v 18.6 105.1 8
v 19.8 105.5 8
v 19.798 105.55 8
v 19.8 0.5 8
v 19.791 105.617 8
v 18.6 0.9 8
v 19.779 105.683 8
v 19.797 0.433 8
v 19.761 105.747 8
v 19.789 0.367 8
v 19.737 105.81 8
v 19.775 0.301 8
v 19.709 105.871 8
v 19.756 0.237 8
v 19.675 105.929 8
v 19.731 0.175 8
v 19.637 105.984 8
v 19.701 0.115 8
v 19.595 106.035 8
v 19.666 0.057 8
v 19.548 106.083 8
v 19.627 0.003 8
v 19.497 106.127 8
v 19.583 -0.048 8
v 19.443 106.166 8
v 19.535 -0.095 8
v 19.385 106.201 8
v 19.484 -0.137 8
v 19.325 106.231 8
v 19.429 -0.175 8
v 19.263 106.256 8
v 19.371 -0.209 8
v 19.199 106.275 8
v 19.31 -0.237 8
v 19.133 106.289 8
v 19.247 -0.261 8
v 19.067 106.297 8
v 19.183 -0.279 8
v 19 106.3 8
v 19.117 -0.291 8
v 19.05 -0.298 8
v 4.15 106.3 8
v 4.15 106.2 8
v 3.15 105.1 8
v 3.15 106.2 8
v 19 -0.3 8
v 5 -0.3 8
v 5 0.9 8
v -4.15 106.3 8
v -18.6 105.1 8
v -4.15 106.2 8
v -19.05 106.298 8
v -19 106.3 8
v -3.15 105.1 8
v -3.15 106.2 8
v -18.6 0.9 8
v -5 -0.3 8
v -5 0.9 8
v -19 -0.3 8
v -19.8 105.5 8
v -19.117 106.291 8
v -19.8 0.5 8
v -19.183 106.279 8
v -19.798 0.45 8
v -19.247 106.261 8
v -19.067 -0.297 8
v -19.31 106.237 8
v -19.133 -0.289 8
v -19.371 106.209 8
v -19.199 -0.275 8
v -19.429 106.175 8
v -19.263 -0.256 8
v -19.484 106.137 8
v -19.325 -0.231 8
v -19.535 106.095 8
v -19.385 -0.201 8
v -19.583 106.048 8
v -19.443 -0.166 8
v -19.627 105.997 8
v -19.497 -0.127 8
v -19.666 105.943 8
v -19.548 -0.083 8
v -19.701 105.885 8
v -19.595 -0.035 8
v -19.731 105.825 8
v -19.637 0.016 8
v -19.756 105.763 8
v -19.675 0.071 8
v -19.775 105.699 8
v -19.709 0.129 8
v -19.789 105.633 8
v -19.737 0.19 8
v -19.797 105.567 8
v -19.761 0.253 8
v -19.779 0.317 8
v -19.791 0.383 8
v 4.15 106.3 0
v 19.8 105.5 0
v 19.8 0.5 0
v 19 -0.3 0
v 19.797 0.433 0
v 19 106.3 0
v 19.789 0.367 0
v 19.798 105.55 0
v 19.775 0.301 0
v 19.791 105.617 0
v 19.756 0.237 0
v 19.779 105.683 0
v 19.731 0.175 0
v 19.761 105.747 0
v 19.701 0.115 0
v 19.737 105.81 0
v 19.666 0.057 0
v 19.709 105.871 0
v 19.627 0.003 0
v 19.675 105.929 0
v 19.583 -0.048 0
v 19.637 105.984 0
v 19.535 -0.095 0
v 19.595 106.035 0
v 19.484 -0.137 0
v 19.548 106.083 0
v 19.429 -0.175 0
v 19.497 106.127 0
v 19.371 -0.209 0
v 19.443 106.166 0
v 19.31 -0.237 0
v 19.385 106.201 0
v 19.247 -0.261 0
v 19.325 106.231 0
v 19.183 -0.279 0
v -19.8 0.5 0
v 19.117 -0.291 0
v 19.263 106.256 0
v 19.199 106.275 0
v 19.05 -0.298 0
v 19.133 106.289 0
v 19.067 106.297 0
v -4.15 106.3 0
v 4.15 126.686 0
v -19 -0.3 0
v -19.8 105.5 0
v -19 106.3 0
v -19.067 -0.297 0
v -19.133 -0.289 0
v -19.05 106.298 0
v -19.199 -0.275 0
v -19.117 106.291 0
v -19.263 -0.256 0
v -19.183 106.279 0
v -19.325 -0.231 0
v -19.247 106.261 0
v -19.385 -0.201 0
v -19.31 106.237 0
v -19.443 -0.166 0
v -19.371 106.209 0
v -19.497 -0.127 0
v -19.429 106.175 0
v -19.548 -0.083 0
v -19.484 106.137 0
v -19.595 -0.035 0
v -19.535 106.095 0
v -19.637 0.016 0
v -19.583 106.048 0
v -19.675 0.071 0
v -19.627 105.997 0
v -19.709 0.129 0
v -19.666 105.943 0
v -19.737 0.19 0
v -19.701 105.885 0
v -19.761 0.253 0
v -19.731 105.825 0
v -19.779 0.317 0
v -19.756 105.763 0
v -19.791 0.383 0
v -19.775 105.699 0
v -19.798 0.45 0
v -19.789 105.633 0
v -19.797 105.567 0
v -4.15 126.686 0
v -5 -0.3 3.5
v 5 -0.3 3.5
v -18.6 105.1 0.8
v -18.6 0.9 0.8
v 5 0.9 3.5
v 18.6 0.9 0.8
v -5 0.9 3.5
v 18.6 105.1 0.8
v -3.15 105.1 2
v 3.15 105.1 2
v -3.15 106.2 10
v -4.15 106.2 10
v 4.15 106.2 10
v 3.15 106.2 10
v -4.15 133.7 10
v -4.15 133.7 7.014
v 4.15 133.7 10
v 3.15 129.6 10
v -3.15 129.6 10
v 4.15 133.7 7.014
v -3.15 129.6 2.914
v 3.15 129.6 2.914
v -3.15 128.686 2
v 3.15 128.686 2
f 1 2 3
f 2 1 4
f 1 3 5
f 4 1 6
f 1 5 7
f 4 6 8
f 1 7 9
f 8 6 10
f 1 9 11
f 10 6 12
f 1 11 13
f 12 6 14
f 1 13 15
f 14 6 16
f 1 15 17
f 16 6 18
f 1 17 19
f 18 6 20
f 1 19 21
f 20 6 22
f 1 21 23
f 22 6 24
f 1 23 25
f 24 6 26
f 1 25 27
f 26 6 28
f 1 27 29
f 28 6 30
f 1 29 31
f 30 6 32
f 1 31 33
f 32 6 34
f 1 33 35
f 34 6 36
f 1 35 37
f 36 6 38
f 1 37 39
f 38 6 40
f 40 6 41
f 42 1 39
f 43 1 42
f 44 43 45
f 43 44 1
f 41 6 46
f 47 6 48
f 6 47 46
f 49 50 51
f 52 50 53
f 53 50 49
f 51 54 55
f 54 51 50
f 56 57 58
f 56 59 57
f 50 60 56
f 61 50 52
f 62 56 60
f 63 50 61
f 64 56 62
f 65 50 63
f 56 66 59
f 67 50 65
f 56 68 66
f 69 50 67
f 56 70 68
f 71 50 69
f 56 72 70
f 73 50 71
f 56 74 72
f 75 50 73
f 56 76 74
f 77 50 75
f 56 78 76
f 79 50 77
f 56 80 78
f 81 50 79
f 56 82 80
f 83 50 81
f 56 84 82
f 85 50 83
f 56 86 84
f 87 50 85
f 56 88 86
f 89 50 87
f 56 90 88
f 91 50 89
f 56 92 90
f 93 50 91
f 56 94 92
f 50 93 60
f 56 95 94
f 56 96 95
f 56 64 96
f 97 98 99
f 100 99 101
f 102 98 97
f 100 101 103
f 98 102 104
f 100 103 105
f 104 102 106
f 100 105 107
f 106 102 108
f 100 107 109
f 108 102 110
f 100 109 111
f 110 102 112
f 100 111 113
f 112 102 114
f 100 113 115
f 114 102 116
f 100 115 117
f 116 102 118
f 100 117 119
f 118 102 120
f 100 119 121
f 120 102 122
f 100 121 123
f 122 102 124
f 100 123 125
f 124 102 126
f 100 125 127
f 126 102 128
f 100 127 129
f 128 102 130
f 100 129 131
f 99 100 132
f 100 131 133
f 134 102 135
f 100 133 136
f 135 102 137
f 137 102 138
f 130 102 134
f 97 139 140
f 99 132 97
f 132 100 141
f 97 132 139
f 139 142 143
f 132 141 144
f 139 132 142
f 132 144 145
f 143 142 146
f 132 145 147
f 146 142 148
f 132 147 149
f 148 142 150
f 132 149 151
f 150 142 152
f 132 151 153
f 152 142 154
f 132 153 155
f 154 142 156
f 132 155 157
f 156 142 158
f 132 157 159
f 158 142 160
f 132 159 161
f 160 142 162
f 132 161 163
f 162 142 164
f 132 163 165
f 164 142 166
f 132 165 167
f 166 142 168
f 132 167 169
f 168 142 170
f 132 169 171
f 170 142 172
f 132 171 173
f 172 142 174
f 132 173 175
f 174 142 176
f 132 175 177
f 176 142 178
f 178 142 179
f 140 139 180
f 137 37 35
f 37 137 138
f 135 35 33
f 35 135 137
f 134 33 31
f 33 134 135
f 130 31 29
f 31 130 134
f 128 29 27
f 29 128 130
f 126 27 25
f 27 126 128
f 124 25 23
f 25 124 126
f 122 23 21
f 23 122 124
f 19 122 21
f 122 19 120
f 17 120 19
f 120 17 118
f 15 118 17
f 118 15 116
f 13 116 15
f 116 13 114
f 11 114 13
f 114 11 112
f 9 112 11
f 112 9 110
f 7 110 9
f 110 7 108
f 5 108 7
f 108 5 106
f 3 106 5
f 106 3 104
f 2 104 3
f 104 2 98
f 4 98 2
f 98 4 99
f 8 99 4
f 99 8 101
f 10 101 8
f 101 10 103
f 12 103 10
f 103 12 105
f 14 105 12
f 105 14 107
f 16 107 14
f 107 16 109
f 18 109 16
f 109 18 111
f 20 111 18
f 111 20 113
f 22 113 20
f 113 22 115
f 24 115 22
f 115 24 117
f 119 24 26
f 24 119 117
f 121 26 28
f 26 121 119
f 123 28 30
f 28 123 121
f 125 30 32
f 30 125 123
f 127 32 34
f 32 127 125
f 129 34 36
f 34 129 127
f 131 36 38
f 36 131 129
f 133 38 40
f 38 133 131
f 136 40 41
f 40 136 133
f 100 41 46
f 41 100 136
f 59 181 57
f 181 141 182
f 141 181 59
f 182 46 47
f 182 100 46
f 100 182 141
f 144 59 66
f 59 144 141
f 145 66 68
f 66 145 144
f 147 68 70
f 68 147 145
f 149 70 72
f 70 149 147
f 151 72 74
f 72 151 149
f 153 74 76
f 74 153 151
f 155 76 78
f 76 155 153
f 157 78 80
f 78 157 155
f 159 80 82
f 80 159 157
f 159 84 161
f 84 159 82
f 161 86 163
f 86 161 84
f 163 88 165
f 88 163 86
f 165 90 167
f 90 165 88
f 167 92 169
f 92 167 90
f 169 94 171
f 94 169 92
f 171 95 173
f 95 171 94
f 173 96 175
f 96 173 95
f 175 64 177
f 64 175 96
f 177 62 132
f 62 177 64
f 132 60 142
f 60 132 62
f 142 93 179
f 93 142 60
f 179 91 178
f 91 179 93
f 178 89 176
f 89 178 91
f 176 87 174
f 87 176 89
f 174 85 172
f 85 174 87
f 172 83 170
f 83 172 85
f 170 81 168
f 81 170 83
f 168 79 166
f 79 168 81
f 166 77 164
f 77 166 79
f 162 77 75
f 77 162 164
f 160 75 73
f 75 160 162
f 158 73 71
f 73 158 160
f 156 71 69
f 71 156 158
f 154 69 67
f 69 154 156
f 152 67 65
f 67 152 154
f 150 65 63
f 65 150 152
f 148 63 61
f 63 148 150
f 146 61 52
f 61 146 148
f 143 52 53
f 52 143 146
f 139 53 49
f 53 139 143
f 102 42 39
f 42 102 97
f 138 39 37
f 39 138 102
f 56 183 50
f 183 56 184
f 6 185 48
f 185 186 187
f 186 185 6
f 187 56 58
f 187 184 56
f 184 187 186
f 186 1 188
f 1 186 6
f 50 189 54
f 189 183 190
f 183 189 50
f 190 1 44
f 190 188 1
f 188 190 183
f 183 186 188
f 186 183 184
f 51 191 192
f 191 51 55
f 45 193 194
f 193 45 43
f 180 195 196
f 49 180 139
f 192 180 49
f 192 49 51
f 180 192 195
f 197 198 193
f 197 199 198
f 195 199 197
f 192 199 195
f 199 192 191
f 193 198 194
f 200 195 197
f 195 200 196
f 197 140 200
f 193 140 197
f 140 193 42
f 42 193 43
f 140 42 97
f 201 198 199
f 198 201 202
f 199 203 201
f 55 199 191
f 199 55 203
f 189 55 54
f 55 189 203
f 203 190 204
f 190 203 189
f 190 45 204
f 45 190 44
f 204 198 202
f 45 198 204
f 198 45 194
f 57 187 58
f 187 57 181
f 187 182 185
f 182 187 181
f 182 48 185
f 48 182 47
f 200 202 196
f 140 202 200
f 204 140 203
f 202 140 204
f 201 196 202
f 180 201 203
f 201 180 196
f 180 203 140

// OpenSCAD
$fn=75;

BOX_W = 38;
BOX_L = 105;
BOX_H = 8.0;

WALL = 0.8;

CORNER_RADIUS = 0.8;

MIC_OUTSIDE_W=8.3;
MIC_OUTSIDE_H=10.0;

MIC_INSIDE_W=6.3;
MIC_L=27.5;

MIC_OFFSET_X = 0;
MIC_OFFSET_Y = -33.4;
MIC_OFFSET_Z = 0;

VENT_OFFSET = -4.5;
VENT_L = 19.0;
VENT_R = -19.0;

module roundedRectangle(width, length, radius) {
    difference() {
        offset(r=radius) square([width, length], center=true);
        offset(r=radius - WALL) square([width - WALL, length - WALL], center=true);
    }
}

module mainLid() {
    // sides of box
    linear_extrude(BOX_H)
    roundedRectangle(BOX_W, BOX_L, CORNER_RADIUS);
    // base of box
    translate([0, 0, BOX_H - WALL]) {
        linear_extrude(WALL) square([BOX_W, BOX_L], center=true);
    }
}

module micBox() {
        translate([0, -53.2, 3])
        rotate([90, 0, 0])
        linear_extrude(MIC_L) square([MIC_OUTSIDE_W, MIC_OUTSIDE_H], center=true);
    }
//}

module vent(x, y, vent_offset) {
    translate([x, y, BOX_H + vent_offset]) {
        rotate([90, 0, 90]) {
            cylinder(h=3.0, d=2.0, center=true);
        }
    }
}

module cutouts() {
    translate([MIC_OFFSET_X, MIC_OFFSET_Y, MIC_OFFSET_Z]) {
        // Inside mic channel
        translate([0, +110, BOX_H-18])
        rotate([90, 0, 0])
        linear_extrude(MIC_L  +4.1) square([MIC_INSIDE_W, MIC_OUTSIDE_H], center=true);
        
        // Mic lid clearance at mic box opening
        //translate([0, -17, BOX_H-0.10])
        //rotate([90, 0, 0])
        //linear_extrude(2.0) square([9, 2.2], center=true);
    }

    // Cable exit
    translate([0, -51.0, BOX_H-18.5])
    rotate([90, 0, 0])
    linear_extrude(3.0) square([10, 6], center=true);
    
    // front of keel slope
    translate([-5, BOX_L-26, -23])
    rotate([45, 0, 0])
    //(x, z, y)
    #cube([10, 11, 8]); 
}

// put it all together
translate([0, 53, 17]) { // offset model to start on 0, 0, 0
    difference() {
        rotate([180, 0, 0]) { // Flipping the entire object along the X axis
            union() {
                translate([0, 0, 9.0]) { 
                    mainLid();
                    micBox();
                }
            }
        }
        cutouts();
    }
}
